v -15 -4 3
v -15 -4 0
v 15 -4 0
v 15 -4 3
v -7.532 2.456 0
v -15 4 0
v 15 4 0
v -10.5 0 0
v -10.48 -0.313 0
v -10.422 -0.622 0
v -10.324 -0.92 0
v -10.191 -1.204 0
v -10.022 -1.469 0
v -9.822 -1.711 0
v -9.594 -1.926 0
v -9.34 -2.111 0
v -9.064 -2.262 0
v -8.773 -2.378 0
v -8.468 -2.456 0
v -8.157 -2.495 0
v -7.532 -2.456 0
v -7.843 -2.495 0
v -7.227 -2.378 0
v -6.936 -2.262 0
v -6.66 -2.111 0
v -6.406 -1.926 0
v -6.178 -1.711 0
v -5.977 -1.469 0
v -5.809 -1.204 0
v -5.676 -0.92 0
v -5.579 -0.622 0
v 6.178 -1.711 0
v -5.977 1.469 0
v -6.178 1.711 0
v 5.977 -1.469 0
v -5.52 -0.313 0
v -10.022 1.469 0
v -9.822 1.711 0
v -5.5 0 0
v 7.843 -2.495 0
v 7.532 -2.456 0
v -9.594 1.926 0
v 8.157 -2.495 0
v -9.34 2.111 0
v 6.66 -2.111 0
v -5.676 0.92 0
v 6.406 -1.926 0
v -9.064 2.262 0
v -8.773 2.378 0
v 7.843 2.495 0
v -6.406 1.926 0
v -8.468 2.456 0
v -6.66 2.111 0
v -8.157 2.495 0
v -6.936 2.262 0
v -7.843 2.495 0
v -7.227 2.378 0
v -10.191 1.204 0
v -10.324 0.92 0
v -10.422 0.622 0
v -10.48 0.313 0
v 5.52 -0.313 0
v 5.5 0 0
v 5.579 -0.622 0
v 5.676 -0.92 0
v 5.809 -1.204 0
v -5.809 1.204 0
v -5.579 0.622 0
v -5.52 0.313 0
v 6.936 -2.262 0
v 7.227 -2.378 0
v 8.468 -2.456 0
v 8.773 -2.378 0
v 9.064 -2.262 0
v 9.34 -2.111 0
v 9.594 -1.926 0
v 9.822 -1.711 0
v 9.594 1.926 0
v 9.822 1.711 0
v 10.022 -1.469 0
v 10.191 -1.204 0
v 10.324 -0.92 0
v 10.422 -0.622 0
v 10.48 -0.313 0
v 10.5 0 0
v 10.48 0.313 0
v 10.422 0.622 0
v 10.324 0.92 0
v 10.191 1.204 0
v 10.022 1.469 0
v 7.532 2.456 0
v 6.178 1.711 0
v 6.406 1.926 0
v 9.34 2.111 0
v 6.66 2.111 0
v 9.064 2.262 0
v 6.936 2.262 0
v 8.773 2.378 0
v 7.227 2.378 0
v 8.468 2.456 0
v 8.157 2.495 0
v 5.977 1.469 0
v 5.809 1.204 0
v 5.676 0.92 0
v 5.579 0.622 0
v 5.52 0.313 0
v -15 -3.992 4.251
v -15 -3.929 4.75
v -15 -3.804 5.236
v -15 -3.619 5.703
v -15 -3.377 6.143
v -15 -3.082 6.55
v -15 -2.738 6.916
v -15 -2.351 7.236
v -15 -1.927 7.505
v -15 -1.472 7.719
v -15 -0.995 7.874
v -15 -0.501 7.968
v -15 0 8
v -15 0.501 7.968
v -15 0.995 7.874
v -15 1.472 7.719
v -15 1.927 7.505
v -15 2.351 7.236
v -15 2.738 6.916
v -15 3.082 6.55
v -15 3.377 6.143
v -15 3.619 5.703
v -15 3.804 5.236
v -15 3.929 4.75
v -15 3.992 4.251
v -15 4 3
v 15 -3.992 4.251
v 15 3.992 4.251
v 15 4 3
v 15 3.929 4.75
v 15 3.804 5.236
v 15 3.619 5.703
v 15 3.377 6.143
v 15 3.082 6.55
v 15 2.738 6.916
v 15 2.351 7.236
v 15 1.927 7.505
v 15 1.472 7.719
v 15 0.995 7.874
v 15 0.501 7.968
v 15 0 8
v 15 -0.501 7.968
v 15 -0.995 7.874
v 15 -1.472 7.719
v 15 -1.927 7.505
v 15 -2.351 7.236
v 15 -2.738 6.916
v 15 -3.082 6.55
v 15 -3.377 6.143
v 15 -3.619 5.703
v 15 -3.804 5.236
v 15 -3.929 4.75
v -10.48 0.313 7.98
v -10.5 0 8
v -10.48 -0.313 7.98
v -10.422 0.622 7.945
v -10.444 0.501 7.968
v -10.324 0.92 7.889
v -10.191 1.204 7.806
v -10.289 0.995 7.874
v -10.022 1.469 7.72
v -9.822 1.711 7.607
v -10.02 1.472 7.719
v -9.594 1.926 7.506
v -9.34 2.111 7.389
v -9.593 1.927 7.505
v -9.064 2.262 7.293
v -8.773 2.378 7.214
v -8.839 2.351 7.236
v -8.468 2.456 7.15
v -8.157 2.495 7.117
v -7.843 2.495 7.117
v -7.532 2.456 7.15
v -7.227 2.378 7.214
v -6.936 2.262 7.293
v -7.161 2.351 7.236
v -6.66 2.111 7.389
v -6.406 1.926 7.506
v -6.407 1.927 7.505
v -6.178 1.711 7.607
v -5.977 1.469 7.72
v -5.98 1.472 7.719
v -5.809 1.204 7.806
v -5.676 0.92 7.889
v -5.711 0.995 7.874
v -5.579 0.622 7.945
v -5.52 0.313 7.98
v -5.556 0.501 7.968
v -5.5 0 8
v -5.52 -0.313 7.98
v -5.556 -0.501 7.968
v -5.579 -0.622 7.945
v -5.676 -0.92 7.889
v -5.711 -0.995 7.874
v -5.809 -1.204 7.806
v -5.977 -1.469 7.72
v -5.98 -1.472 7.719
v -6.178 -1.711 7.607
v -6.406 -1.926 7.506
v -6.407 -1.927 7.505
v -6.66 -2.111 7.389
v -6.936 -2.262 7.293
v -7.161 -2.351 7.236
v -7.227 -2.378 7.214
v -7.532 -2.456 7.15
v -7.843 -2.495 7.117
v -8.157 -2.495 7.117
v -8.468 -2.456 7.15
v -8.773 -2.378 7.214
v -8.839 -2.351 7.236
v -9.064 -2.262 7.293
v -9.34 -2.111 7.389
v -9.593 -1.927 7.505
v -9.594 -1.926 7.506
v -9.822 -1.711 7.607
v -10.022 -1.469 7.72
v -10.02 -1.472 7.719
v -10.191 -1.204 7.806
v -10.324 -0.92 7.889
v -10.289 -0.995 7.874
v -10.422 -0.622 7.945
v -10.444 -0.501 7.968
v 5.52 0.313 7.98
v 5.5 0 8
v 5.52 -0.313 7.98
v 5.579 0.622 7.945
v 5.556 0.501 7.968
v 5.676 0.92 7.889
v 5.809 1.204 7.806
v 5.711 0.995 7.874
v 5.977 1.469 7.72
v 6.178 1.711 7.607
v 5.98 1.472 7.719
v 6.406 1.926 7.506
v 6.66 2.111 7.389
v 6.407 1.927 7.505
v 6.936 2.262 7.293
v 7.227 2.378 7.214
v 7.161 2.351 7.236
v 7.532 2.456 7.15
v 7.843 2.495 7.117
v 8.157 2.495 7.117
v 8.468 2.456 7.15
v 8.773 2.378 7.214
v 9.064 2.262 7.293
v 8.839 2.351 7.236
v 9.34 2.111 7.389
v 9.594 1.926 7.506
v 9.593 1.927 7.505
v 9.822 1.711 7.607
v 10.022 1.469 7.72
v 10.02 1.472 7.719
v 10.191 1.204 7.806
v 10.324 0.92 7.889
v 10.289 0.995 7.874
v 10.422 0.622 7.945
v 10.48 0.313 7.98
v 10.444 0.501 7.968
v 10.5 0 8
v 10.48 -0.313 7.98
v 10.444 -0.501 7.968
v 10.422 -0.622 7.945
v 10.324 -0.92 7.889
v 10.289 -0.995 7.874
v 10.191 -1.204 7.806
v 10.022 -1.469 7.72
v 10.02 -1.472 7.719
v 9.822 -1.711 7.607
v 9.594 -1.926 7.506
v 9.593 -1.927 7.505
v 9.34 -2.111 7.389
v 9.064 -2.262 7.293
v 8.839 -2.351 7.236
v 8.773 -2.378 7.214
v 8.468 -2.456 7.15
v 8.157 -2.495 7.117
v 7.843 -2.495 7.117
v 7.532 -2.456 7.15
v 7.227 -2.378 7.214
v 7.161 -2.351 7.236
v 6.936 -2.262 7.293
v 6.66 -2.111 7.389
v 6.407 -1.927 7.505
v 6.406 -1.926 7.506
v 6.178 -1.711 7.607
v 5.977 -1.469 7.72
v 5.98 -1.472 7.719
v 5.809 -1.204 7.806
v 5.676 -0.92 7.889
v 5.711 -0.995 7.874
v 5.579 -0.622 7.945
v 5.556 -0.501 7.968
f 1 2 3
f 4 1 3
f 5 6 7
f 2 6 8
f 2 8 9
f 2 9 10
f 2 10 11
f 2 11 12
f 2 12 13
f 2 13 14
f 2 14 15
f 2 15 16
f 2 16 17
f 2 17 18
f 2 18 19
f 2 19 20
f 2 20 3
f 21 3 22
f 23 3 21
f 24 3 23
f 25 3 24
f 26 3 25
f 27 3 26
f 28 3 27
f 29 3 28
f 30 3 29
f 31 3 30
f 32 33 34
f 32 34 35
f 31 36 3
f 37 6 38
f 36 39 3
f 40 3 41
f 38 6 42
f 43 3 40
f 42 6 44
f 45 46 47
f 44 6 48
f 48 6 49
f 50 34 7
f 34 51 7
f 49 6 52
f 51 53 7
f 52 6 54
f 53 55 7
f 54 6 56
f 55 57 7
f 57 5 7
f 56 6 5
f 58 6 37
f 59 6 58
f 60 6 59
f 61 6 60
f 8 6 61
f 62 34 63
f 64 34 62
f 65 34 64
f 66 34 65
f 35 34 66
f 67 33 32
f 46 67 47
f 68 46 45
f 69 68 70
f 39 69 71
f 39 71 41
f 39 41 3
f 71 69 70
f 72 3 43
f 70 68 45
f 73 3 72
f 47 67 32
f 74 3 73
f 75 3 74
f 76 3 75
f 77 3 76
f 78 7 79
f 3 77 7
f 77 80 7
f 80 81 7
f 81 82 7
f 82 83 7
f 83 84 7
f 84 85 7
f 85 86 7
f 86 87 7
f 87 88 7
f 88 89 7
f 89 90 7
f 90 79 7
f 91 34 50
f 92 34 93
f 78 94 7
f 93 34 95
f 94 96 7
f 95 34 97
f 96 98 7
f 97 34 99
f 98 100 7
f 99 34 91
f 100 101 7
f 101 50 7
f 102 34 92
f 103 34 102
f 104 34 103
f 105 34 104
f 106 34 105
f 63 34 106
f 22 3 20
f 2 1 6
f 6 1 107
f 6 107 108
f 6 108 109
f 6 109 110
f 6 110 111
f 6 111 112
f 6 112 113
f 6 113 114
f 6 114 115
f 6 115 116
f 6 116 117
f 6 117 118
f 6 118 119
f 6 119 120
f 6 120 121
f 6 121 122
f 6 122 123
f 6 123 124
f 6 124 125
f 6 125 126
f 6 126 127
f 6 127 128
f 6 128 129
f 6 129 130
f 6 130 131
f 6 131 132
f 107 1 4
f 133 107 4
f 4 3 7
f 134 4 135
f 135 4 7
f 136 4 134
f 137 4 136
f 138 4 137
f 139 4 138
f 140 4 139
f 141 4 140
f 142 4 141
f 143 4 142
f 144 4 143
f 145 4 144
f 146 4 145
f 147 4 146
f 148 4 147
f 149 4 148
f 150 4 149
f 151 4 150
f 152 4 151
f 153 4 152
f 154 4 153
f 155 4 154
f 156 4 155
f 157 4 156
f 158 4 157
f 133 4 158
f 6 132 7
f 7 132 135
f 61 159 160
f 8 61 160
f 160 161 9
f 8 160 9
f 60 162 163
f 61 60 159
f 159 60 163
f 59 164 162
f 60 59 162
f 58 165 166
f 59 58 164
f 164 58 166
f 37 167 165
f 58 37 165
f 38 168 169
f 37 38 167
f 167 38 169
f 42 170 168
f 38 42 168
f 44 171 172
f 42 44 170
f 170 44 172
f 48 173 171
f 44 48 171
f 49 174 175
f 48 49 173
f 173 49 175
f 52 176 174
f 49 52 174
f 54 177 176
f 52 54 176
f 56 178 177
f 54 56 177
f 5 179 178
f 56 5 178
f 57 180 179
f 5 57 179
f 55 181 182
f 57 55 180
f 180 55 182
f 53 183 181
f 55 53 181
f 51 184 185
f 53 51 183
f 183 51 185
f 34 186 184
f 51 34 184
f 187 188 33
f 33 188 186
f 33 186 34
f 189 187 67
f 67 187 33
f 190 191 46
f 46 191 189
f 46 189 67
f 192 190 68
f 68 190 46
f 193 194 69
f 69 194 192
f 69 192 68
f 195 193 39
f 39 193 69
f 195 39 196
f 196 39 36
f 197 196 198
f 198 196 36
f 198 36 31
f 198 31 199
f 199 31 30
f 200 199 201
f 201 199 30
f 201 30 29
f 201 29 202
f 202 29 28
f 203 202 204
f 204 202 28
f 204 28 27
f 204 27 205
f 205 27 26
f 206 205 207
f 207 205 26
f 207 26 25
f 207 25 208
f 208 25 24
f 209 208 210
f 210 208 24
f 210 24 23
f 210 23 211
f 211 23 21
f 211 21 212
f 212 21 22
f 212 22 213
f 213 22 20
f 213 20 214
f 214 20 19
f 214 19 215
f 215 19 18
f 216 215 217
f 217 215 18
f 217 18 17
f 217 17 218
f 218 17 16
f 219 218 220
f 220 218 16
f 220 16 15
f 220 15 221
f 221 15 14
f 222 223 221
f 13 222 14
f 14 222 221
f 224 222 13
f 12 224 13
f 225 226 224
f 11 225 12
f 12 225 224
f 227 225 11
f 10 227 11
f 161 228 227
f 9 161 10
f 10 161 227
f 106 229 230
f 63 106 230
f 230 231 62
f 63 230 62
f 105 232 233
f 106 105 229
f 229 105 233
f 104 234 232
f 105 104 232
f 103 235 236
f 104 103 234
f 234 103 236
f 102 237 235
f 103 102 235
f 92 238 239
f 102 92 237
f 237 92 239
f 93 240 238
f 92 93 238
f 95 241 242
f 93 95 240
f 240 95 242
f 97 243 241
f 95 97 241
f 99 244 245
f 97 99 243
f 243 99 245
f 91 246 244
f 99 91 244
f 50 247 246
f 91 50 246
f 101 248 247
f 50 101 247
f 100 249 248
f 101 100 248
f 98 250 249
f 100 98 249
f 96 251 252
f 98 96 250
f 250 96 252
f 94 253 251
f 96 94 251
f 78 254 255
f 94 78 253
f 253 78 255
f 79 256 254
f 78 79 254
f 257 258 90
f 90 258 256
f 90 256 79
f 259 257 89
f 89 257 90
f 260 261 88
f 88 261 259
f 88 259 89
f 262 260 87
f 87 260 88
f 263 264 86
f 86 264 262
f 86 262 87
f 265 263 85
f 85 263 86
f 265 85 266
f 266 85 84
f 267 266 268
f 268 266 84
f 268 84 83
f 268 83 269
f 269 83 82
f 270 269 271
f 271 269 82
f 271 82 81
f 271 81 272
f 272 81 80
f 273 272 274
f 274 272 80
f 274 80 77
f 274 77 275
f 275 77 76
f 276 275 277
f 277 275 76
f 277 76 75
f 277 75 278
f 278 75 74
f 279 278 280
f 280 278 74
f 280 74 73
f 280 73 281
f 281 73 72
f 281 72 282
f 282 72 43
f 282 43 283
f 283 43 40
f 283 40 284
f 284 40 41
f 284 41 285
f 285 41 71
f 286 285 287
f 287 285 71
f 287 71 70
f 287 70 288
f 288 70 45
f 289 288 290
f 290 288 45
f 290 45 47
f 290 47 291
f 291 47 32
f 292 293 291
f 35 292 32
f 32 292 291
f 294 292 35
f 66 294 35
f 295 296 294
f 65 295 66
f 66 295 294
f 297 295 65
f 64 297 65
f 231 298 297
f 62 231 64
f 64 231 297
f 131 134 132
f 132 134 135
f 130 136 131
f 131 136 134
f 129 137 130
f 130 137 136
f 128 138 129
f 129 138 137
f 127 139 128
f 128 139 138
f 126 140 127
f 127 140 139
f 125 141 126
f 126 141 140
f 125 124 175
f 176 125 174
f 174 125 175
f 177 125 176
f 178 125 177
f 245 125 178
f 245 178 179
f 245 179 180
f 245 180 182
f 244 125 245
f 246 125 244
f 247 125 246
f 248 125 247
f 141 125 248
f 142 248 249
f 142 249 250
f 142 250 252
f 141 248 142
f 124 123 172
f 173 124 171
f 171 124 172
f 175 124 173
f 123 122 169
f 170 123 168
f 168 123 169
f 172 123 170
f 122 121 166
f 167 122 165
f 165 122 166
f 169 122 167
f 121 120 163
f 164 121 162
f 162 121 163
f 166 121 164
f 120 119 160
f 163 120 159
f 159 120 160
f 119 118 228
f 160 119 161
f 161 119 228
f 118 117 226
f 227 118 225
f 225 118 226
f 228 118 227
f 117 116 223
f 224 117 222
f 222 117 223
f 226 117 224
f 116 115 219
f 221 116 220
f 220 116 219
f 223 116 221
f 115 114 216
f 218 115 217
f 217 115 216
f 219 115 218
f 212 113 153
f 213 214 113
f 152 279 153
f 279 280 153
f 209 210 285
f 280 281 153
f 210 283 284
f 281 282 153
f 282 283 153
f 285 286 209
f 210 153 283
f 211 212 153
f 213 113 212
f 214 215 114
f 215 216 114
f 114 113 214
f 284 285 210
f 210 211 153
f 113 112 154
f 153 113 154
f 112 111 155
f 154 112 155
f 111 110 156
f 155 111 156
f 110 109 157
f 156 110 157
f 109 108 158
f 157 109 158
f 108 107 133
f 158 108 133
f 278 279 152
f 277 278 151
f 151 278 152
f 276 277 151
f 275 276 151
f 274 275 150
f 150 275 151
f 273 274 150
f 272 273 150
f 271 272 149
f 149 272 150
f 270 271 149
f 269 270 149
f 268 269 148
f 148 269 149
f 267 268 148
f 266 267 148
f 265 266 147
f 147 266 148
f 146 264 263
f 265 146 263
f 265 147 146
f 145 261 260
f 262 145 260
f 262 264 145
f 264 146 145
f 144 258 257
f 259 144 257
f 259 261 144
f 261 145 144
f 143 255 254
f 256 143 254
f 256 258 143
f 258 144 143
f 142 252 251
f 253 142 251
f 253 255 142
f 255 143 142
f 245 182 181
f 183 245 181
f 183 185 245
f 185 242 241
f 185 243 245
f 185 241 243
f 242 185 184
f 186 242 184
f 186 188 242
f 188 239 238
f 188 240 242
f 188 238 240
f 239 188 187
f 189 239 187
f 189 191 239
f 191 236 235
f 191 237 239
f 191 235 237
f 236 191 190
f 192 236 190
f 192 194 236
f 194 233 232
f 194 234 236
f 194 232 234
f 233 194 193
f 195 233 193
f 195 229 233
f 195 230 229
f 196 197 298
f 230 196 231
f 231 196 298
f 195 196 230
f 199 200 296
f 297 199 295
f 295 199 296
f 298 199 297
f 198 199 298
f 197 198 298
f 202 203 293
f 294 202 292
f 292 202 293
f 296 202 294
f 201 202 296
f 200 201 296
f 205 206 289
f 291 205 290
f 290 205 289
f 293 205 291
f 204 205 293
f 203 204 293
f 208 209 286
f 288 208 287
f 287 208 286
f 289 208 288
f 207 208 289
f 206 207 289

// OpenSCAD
difference()
{
	hull()
	{
		translate([-15,-4,0])cube([30,8,3]);
		translate([0,0,4])rotate([0,90,0])cylinder(r=4, h = 30, center = true,$fn = 50);
	}
	union()
	{
		translate([-8,0,-1])cylinder(r=2.5, h = 20, $fn = 50);
		translate([8,0,-1])cylinder(r=2.5, h = 20, $fn = 50);
	}
}
